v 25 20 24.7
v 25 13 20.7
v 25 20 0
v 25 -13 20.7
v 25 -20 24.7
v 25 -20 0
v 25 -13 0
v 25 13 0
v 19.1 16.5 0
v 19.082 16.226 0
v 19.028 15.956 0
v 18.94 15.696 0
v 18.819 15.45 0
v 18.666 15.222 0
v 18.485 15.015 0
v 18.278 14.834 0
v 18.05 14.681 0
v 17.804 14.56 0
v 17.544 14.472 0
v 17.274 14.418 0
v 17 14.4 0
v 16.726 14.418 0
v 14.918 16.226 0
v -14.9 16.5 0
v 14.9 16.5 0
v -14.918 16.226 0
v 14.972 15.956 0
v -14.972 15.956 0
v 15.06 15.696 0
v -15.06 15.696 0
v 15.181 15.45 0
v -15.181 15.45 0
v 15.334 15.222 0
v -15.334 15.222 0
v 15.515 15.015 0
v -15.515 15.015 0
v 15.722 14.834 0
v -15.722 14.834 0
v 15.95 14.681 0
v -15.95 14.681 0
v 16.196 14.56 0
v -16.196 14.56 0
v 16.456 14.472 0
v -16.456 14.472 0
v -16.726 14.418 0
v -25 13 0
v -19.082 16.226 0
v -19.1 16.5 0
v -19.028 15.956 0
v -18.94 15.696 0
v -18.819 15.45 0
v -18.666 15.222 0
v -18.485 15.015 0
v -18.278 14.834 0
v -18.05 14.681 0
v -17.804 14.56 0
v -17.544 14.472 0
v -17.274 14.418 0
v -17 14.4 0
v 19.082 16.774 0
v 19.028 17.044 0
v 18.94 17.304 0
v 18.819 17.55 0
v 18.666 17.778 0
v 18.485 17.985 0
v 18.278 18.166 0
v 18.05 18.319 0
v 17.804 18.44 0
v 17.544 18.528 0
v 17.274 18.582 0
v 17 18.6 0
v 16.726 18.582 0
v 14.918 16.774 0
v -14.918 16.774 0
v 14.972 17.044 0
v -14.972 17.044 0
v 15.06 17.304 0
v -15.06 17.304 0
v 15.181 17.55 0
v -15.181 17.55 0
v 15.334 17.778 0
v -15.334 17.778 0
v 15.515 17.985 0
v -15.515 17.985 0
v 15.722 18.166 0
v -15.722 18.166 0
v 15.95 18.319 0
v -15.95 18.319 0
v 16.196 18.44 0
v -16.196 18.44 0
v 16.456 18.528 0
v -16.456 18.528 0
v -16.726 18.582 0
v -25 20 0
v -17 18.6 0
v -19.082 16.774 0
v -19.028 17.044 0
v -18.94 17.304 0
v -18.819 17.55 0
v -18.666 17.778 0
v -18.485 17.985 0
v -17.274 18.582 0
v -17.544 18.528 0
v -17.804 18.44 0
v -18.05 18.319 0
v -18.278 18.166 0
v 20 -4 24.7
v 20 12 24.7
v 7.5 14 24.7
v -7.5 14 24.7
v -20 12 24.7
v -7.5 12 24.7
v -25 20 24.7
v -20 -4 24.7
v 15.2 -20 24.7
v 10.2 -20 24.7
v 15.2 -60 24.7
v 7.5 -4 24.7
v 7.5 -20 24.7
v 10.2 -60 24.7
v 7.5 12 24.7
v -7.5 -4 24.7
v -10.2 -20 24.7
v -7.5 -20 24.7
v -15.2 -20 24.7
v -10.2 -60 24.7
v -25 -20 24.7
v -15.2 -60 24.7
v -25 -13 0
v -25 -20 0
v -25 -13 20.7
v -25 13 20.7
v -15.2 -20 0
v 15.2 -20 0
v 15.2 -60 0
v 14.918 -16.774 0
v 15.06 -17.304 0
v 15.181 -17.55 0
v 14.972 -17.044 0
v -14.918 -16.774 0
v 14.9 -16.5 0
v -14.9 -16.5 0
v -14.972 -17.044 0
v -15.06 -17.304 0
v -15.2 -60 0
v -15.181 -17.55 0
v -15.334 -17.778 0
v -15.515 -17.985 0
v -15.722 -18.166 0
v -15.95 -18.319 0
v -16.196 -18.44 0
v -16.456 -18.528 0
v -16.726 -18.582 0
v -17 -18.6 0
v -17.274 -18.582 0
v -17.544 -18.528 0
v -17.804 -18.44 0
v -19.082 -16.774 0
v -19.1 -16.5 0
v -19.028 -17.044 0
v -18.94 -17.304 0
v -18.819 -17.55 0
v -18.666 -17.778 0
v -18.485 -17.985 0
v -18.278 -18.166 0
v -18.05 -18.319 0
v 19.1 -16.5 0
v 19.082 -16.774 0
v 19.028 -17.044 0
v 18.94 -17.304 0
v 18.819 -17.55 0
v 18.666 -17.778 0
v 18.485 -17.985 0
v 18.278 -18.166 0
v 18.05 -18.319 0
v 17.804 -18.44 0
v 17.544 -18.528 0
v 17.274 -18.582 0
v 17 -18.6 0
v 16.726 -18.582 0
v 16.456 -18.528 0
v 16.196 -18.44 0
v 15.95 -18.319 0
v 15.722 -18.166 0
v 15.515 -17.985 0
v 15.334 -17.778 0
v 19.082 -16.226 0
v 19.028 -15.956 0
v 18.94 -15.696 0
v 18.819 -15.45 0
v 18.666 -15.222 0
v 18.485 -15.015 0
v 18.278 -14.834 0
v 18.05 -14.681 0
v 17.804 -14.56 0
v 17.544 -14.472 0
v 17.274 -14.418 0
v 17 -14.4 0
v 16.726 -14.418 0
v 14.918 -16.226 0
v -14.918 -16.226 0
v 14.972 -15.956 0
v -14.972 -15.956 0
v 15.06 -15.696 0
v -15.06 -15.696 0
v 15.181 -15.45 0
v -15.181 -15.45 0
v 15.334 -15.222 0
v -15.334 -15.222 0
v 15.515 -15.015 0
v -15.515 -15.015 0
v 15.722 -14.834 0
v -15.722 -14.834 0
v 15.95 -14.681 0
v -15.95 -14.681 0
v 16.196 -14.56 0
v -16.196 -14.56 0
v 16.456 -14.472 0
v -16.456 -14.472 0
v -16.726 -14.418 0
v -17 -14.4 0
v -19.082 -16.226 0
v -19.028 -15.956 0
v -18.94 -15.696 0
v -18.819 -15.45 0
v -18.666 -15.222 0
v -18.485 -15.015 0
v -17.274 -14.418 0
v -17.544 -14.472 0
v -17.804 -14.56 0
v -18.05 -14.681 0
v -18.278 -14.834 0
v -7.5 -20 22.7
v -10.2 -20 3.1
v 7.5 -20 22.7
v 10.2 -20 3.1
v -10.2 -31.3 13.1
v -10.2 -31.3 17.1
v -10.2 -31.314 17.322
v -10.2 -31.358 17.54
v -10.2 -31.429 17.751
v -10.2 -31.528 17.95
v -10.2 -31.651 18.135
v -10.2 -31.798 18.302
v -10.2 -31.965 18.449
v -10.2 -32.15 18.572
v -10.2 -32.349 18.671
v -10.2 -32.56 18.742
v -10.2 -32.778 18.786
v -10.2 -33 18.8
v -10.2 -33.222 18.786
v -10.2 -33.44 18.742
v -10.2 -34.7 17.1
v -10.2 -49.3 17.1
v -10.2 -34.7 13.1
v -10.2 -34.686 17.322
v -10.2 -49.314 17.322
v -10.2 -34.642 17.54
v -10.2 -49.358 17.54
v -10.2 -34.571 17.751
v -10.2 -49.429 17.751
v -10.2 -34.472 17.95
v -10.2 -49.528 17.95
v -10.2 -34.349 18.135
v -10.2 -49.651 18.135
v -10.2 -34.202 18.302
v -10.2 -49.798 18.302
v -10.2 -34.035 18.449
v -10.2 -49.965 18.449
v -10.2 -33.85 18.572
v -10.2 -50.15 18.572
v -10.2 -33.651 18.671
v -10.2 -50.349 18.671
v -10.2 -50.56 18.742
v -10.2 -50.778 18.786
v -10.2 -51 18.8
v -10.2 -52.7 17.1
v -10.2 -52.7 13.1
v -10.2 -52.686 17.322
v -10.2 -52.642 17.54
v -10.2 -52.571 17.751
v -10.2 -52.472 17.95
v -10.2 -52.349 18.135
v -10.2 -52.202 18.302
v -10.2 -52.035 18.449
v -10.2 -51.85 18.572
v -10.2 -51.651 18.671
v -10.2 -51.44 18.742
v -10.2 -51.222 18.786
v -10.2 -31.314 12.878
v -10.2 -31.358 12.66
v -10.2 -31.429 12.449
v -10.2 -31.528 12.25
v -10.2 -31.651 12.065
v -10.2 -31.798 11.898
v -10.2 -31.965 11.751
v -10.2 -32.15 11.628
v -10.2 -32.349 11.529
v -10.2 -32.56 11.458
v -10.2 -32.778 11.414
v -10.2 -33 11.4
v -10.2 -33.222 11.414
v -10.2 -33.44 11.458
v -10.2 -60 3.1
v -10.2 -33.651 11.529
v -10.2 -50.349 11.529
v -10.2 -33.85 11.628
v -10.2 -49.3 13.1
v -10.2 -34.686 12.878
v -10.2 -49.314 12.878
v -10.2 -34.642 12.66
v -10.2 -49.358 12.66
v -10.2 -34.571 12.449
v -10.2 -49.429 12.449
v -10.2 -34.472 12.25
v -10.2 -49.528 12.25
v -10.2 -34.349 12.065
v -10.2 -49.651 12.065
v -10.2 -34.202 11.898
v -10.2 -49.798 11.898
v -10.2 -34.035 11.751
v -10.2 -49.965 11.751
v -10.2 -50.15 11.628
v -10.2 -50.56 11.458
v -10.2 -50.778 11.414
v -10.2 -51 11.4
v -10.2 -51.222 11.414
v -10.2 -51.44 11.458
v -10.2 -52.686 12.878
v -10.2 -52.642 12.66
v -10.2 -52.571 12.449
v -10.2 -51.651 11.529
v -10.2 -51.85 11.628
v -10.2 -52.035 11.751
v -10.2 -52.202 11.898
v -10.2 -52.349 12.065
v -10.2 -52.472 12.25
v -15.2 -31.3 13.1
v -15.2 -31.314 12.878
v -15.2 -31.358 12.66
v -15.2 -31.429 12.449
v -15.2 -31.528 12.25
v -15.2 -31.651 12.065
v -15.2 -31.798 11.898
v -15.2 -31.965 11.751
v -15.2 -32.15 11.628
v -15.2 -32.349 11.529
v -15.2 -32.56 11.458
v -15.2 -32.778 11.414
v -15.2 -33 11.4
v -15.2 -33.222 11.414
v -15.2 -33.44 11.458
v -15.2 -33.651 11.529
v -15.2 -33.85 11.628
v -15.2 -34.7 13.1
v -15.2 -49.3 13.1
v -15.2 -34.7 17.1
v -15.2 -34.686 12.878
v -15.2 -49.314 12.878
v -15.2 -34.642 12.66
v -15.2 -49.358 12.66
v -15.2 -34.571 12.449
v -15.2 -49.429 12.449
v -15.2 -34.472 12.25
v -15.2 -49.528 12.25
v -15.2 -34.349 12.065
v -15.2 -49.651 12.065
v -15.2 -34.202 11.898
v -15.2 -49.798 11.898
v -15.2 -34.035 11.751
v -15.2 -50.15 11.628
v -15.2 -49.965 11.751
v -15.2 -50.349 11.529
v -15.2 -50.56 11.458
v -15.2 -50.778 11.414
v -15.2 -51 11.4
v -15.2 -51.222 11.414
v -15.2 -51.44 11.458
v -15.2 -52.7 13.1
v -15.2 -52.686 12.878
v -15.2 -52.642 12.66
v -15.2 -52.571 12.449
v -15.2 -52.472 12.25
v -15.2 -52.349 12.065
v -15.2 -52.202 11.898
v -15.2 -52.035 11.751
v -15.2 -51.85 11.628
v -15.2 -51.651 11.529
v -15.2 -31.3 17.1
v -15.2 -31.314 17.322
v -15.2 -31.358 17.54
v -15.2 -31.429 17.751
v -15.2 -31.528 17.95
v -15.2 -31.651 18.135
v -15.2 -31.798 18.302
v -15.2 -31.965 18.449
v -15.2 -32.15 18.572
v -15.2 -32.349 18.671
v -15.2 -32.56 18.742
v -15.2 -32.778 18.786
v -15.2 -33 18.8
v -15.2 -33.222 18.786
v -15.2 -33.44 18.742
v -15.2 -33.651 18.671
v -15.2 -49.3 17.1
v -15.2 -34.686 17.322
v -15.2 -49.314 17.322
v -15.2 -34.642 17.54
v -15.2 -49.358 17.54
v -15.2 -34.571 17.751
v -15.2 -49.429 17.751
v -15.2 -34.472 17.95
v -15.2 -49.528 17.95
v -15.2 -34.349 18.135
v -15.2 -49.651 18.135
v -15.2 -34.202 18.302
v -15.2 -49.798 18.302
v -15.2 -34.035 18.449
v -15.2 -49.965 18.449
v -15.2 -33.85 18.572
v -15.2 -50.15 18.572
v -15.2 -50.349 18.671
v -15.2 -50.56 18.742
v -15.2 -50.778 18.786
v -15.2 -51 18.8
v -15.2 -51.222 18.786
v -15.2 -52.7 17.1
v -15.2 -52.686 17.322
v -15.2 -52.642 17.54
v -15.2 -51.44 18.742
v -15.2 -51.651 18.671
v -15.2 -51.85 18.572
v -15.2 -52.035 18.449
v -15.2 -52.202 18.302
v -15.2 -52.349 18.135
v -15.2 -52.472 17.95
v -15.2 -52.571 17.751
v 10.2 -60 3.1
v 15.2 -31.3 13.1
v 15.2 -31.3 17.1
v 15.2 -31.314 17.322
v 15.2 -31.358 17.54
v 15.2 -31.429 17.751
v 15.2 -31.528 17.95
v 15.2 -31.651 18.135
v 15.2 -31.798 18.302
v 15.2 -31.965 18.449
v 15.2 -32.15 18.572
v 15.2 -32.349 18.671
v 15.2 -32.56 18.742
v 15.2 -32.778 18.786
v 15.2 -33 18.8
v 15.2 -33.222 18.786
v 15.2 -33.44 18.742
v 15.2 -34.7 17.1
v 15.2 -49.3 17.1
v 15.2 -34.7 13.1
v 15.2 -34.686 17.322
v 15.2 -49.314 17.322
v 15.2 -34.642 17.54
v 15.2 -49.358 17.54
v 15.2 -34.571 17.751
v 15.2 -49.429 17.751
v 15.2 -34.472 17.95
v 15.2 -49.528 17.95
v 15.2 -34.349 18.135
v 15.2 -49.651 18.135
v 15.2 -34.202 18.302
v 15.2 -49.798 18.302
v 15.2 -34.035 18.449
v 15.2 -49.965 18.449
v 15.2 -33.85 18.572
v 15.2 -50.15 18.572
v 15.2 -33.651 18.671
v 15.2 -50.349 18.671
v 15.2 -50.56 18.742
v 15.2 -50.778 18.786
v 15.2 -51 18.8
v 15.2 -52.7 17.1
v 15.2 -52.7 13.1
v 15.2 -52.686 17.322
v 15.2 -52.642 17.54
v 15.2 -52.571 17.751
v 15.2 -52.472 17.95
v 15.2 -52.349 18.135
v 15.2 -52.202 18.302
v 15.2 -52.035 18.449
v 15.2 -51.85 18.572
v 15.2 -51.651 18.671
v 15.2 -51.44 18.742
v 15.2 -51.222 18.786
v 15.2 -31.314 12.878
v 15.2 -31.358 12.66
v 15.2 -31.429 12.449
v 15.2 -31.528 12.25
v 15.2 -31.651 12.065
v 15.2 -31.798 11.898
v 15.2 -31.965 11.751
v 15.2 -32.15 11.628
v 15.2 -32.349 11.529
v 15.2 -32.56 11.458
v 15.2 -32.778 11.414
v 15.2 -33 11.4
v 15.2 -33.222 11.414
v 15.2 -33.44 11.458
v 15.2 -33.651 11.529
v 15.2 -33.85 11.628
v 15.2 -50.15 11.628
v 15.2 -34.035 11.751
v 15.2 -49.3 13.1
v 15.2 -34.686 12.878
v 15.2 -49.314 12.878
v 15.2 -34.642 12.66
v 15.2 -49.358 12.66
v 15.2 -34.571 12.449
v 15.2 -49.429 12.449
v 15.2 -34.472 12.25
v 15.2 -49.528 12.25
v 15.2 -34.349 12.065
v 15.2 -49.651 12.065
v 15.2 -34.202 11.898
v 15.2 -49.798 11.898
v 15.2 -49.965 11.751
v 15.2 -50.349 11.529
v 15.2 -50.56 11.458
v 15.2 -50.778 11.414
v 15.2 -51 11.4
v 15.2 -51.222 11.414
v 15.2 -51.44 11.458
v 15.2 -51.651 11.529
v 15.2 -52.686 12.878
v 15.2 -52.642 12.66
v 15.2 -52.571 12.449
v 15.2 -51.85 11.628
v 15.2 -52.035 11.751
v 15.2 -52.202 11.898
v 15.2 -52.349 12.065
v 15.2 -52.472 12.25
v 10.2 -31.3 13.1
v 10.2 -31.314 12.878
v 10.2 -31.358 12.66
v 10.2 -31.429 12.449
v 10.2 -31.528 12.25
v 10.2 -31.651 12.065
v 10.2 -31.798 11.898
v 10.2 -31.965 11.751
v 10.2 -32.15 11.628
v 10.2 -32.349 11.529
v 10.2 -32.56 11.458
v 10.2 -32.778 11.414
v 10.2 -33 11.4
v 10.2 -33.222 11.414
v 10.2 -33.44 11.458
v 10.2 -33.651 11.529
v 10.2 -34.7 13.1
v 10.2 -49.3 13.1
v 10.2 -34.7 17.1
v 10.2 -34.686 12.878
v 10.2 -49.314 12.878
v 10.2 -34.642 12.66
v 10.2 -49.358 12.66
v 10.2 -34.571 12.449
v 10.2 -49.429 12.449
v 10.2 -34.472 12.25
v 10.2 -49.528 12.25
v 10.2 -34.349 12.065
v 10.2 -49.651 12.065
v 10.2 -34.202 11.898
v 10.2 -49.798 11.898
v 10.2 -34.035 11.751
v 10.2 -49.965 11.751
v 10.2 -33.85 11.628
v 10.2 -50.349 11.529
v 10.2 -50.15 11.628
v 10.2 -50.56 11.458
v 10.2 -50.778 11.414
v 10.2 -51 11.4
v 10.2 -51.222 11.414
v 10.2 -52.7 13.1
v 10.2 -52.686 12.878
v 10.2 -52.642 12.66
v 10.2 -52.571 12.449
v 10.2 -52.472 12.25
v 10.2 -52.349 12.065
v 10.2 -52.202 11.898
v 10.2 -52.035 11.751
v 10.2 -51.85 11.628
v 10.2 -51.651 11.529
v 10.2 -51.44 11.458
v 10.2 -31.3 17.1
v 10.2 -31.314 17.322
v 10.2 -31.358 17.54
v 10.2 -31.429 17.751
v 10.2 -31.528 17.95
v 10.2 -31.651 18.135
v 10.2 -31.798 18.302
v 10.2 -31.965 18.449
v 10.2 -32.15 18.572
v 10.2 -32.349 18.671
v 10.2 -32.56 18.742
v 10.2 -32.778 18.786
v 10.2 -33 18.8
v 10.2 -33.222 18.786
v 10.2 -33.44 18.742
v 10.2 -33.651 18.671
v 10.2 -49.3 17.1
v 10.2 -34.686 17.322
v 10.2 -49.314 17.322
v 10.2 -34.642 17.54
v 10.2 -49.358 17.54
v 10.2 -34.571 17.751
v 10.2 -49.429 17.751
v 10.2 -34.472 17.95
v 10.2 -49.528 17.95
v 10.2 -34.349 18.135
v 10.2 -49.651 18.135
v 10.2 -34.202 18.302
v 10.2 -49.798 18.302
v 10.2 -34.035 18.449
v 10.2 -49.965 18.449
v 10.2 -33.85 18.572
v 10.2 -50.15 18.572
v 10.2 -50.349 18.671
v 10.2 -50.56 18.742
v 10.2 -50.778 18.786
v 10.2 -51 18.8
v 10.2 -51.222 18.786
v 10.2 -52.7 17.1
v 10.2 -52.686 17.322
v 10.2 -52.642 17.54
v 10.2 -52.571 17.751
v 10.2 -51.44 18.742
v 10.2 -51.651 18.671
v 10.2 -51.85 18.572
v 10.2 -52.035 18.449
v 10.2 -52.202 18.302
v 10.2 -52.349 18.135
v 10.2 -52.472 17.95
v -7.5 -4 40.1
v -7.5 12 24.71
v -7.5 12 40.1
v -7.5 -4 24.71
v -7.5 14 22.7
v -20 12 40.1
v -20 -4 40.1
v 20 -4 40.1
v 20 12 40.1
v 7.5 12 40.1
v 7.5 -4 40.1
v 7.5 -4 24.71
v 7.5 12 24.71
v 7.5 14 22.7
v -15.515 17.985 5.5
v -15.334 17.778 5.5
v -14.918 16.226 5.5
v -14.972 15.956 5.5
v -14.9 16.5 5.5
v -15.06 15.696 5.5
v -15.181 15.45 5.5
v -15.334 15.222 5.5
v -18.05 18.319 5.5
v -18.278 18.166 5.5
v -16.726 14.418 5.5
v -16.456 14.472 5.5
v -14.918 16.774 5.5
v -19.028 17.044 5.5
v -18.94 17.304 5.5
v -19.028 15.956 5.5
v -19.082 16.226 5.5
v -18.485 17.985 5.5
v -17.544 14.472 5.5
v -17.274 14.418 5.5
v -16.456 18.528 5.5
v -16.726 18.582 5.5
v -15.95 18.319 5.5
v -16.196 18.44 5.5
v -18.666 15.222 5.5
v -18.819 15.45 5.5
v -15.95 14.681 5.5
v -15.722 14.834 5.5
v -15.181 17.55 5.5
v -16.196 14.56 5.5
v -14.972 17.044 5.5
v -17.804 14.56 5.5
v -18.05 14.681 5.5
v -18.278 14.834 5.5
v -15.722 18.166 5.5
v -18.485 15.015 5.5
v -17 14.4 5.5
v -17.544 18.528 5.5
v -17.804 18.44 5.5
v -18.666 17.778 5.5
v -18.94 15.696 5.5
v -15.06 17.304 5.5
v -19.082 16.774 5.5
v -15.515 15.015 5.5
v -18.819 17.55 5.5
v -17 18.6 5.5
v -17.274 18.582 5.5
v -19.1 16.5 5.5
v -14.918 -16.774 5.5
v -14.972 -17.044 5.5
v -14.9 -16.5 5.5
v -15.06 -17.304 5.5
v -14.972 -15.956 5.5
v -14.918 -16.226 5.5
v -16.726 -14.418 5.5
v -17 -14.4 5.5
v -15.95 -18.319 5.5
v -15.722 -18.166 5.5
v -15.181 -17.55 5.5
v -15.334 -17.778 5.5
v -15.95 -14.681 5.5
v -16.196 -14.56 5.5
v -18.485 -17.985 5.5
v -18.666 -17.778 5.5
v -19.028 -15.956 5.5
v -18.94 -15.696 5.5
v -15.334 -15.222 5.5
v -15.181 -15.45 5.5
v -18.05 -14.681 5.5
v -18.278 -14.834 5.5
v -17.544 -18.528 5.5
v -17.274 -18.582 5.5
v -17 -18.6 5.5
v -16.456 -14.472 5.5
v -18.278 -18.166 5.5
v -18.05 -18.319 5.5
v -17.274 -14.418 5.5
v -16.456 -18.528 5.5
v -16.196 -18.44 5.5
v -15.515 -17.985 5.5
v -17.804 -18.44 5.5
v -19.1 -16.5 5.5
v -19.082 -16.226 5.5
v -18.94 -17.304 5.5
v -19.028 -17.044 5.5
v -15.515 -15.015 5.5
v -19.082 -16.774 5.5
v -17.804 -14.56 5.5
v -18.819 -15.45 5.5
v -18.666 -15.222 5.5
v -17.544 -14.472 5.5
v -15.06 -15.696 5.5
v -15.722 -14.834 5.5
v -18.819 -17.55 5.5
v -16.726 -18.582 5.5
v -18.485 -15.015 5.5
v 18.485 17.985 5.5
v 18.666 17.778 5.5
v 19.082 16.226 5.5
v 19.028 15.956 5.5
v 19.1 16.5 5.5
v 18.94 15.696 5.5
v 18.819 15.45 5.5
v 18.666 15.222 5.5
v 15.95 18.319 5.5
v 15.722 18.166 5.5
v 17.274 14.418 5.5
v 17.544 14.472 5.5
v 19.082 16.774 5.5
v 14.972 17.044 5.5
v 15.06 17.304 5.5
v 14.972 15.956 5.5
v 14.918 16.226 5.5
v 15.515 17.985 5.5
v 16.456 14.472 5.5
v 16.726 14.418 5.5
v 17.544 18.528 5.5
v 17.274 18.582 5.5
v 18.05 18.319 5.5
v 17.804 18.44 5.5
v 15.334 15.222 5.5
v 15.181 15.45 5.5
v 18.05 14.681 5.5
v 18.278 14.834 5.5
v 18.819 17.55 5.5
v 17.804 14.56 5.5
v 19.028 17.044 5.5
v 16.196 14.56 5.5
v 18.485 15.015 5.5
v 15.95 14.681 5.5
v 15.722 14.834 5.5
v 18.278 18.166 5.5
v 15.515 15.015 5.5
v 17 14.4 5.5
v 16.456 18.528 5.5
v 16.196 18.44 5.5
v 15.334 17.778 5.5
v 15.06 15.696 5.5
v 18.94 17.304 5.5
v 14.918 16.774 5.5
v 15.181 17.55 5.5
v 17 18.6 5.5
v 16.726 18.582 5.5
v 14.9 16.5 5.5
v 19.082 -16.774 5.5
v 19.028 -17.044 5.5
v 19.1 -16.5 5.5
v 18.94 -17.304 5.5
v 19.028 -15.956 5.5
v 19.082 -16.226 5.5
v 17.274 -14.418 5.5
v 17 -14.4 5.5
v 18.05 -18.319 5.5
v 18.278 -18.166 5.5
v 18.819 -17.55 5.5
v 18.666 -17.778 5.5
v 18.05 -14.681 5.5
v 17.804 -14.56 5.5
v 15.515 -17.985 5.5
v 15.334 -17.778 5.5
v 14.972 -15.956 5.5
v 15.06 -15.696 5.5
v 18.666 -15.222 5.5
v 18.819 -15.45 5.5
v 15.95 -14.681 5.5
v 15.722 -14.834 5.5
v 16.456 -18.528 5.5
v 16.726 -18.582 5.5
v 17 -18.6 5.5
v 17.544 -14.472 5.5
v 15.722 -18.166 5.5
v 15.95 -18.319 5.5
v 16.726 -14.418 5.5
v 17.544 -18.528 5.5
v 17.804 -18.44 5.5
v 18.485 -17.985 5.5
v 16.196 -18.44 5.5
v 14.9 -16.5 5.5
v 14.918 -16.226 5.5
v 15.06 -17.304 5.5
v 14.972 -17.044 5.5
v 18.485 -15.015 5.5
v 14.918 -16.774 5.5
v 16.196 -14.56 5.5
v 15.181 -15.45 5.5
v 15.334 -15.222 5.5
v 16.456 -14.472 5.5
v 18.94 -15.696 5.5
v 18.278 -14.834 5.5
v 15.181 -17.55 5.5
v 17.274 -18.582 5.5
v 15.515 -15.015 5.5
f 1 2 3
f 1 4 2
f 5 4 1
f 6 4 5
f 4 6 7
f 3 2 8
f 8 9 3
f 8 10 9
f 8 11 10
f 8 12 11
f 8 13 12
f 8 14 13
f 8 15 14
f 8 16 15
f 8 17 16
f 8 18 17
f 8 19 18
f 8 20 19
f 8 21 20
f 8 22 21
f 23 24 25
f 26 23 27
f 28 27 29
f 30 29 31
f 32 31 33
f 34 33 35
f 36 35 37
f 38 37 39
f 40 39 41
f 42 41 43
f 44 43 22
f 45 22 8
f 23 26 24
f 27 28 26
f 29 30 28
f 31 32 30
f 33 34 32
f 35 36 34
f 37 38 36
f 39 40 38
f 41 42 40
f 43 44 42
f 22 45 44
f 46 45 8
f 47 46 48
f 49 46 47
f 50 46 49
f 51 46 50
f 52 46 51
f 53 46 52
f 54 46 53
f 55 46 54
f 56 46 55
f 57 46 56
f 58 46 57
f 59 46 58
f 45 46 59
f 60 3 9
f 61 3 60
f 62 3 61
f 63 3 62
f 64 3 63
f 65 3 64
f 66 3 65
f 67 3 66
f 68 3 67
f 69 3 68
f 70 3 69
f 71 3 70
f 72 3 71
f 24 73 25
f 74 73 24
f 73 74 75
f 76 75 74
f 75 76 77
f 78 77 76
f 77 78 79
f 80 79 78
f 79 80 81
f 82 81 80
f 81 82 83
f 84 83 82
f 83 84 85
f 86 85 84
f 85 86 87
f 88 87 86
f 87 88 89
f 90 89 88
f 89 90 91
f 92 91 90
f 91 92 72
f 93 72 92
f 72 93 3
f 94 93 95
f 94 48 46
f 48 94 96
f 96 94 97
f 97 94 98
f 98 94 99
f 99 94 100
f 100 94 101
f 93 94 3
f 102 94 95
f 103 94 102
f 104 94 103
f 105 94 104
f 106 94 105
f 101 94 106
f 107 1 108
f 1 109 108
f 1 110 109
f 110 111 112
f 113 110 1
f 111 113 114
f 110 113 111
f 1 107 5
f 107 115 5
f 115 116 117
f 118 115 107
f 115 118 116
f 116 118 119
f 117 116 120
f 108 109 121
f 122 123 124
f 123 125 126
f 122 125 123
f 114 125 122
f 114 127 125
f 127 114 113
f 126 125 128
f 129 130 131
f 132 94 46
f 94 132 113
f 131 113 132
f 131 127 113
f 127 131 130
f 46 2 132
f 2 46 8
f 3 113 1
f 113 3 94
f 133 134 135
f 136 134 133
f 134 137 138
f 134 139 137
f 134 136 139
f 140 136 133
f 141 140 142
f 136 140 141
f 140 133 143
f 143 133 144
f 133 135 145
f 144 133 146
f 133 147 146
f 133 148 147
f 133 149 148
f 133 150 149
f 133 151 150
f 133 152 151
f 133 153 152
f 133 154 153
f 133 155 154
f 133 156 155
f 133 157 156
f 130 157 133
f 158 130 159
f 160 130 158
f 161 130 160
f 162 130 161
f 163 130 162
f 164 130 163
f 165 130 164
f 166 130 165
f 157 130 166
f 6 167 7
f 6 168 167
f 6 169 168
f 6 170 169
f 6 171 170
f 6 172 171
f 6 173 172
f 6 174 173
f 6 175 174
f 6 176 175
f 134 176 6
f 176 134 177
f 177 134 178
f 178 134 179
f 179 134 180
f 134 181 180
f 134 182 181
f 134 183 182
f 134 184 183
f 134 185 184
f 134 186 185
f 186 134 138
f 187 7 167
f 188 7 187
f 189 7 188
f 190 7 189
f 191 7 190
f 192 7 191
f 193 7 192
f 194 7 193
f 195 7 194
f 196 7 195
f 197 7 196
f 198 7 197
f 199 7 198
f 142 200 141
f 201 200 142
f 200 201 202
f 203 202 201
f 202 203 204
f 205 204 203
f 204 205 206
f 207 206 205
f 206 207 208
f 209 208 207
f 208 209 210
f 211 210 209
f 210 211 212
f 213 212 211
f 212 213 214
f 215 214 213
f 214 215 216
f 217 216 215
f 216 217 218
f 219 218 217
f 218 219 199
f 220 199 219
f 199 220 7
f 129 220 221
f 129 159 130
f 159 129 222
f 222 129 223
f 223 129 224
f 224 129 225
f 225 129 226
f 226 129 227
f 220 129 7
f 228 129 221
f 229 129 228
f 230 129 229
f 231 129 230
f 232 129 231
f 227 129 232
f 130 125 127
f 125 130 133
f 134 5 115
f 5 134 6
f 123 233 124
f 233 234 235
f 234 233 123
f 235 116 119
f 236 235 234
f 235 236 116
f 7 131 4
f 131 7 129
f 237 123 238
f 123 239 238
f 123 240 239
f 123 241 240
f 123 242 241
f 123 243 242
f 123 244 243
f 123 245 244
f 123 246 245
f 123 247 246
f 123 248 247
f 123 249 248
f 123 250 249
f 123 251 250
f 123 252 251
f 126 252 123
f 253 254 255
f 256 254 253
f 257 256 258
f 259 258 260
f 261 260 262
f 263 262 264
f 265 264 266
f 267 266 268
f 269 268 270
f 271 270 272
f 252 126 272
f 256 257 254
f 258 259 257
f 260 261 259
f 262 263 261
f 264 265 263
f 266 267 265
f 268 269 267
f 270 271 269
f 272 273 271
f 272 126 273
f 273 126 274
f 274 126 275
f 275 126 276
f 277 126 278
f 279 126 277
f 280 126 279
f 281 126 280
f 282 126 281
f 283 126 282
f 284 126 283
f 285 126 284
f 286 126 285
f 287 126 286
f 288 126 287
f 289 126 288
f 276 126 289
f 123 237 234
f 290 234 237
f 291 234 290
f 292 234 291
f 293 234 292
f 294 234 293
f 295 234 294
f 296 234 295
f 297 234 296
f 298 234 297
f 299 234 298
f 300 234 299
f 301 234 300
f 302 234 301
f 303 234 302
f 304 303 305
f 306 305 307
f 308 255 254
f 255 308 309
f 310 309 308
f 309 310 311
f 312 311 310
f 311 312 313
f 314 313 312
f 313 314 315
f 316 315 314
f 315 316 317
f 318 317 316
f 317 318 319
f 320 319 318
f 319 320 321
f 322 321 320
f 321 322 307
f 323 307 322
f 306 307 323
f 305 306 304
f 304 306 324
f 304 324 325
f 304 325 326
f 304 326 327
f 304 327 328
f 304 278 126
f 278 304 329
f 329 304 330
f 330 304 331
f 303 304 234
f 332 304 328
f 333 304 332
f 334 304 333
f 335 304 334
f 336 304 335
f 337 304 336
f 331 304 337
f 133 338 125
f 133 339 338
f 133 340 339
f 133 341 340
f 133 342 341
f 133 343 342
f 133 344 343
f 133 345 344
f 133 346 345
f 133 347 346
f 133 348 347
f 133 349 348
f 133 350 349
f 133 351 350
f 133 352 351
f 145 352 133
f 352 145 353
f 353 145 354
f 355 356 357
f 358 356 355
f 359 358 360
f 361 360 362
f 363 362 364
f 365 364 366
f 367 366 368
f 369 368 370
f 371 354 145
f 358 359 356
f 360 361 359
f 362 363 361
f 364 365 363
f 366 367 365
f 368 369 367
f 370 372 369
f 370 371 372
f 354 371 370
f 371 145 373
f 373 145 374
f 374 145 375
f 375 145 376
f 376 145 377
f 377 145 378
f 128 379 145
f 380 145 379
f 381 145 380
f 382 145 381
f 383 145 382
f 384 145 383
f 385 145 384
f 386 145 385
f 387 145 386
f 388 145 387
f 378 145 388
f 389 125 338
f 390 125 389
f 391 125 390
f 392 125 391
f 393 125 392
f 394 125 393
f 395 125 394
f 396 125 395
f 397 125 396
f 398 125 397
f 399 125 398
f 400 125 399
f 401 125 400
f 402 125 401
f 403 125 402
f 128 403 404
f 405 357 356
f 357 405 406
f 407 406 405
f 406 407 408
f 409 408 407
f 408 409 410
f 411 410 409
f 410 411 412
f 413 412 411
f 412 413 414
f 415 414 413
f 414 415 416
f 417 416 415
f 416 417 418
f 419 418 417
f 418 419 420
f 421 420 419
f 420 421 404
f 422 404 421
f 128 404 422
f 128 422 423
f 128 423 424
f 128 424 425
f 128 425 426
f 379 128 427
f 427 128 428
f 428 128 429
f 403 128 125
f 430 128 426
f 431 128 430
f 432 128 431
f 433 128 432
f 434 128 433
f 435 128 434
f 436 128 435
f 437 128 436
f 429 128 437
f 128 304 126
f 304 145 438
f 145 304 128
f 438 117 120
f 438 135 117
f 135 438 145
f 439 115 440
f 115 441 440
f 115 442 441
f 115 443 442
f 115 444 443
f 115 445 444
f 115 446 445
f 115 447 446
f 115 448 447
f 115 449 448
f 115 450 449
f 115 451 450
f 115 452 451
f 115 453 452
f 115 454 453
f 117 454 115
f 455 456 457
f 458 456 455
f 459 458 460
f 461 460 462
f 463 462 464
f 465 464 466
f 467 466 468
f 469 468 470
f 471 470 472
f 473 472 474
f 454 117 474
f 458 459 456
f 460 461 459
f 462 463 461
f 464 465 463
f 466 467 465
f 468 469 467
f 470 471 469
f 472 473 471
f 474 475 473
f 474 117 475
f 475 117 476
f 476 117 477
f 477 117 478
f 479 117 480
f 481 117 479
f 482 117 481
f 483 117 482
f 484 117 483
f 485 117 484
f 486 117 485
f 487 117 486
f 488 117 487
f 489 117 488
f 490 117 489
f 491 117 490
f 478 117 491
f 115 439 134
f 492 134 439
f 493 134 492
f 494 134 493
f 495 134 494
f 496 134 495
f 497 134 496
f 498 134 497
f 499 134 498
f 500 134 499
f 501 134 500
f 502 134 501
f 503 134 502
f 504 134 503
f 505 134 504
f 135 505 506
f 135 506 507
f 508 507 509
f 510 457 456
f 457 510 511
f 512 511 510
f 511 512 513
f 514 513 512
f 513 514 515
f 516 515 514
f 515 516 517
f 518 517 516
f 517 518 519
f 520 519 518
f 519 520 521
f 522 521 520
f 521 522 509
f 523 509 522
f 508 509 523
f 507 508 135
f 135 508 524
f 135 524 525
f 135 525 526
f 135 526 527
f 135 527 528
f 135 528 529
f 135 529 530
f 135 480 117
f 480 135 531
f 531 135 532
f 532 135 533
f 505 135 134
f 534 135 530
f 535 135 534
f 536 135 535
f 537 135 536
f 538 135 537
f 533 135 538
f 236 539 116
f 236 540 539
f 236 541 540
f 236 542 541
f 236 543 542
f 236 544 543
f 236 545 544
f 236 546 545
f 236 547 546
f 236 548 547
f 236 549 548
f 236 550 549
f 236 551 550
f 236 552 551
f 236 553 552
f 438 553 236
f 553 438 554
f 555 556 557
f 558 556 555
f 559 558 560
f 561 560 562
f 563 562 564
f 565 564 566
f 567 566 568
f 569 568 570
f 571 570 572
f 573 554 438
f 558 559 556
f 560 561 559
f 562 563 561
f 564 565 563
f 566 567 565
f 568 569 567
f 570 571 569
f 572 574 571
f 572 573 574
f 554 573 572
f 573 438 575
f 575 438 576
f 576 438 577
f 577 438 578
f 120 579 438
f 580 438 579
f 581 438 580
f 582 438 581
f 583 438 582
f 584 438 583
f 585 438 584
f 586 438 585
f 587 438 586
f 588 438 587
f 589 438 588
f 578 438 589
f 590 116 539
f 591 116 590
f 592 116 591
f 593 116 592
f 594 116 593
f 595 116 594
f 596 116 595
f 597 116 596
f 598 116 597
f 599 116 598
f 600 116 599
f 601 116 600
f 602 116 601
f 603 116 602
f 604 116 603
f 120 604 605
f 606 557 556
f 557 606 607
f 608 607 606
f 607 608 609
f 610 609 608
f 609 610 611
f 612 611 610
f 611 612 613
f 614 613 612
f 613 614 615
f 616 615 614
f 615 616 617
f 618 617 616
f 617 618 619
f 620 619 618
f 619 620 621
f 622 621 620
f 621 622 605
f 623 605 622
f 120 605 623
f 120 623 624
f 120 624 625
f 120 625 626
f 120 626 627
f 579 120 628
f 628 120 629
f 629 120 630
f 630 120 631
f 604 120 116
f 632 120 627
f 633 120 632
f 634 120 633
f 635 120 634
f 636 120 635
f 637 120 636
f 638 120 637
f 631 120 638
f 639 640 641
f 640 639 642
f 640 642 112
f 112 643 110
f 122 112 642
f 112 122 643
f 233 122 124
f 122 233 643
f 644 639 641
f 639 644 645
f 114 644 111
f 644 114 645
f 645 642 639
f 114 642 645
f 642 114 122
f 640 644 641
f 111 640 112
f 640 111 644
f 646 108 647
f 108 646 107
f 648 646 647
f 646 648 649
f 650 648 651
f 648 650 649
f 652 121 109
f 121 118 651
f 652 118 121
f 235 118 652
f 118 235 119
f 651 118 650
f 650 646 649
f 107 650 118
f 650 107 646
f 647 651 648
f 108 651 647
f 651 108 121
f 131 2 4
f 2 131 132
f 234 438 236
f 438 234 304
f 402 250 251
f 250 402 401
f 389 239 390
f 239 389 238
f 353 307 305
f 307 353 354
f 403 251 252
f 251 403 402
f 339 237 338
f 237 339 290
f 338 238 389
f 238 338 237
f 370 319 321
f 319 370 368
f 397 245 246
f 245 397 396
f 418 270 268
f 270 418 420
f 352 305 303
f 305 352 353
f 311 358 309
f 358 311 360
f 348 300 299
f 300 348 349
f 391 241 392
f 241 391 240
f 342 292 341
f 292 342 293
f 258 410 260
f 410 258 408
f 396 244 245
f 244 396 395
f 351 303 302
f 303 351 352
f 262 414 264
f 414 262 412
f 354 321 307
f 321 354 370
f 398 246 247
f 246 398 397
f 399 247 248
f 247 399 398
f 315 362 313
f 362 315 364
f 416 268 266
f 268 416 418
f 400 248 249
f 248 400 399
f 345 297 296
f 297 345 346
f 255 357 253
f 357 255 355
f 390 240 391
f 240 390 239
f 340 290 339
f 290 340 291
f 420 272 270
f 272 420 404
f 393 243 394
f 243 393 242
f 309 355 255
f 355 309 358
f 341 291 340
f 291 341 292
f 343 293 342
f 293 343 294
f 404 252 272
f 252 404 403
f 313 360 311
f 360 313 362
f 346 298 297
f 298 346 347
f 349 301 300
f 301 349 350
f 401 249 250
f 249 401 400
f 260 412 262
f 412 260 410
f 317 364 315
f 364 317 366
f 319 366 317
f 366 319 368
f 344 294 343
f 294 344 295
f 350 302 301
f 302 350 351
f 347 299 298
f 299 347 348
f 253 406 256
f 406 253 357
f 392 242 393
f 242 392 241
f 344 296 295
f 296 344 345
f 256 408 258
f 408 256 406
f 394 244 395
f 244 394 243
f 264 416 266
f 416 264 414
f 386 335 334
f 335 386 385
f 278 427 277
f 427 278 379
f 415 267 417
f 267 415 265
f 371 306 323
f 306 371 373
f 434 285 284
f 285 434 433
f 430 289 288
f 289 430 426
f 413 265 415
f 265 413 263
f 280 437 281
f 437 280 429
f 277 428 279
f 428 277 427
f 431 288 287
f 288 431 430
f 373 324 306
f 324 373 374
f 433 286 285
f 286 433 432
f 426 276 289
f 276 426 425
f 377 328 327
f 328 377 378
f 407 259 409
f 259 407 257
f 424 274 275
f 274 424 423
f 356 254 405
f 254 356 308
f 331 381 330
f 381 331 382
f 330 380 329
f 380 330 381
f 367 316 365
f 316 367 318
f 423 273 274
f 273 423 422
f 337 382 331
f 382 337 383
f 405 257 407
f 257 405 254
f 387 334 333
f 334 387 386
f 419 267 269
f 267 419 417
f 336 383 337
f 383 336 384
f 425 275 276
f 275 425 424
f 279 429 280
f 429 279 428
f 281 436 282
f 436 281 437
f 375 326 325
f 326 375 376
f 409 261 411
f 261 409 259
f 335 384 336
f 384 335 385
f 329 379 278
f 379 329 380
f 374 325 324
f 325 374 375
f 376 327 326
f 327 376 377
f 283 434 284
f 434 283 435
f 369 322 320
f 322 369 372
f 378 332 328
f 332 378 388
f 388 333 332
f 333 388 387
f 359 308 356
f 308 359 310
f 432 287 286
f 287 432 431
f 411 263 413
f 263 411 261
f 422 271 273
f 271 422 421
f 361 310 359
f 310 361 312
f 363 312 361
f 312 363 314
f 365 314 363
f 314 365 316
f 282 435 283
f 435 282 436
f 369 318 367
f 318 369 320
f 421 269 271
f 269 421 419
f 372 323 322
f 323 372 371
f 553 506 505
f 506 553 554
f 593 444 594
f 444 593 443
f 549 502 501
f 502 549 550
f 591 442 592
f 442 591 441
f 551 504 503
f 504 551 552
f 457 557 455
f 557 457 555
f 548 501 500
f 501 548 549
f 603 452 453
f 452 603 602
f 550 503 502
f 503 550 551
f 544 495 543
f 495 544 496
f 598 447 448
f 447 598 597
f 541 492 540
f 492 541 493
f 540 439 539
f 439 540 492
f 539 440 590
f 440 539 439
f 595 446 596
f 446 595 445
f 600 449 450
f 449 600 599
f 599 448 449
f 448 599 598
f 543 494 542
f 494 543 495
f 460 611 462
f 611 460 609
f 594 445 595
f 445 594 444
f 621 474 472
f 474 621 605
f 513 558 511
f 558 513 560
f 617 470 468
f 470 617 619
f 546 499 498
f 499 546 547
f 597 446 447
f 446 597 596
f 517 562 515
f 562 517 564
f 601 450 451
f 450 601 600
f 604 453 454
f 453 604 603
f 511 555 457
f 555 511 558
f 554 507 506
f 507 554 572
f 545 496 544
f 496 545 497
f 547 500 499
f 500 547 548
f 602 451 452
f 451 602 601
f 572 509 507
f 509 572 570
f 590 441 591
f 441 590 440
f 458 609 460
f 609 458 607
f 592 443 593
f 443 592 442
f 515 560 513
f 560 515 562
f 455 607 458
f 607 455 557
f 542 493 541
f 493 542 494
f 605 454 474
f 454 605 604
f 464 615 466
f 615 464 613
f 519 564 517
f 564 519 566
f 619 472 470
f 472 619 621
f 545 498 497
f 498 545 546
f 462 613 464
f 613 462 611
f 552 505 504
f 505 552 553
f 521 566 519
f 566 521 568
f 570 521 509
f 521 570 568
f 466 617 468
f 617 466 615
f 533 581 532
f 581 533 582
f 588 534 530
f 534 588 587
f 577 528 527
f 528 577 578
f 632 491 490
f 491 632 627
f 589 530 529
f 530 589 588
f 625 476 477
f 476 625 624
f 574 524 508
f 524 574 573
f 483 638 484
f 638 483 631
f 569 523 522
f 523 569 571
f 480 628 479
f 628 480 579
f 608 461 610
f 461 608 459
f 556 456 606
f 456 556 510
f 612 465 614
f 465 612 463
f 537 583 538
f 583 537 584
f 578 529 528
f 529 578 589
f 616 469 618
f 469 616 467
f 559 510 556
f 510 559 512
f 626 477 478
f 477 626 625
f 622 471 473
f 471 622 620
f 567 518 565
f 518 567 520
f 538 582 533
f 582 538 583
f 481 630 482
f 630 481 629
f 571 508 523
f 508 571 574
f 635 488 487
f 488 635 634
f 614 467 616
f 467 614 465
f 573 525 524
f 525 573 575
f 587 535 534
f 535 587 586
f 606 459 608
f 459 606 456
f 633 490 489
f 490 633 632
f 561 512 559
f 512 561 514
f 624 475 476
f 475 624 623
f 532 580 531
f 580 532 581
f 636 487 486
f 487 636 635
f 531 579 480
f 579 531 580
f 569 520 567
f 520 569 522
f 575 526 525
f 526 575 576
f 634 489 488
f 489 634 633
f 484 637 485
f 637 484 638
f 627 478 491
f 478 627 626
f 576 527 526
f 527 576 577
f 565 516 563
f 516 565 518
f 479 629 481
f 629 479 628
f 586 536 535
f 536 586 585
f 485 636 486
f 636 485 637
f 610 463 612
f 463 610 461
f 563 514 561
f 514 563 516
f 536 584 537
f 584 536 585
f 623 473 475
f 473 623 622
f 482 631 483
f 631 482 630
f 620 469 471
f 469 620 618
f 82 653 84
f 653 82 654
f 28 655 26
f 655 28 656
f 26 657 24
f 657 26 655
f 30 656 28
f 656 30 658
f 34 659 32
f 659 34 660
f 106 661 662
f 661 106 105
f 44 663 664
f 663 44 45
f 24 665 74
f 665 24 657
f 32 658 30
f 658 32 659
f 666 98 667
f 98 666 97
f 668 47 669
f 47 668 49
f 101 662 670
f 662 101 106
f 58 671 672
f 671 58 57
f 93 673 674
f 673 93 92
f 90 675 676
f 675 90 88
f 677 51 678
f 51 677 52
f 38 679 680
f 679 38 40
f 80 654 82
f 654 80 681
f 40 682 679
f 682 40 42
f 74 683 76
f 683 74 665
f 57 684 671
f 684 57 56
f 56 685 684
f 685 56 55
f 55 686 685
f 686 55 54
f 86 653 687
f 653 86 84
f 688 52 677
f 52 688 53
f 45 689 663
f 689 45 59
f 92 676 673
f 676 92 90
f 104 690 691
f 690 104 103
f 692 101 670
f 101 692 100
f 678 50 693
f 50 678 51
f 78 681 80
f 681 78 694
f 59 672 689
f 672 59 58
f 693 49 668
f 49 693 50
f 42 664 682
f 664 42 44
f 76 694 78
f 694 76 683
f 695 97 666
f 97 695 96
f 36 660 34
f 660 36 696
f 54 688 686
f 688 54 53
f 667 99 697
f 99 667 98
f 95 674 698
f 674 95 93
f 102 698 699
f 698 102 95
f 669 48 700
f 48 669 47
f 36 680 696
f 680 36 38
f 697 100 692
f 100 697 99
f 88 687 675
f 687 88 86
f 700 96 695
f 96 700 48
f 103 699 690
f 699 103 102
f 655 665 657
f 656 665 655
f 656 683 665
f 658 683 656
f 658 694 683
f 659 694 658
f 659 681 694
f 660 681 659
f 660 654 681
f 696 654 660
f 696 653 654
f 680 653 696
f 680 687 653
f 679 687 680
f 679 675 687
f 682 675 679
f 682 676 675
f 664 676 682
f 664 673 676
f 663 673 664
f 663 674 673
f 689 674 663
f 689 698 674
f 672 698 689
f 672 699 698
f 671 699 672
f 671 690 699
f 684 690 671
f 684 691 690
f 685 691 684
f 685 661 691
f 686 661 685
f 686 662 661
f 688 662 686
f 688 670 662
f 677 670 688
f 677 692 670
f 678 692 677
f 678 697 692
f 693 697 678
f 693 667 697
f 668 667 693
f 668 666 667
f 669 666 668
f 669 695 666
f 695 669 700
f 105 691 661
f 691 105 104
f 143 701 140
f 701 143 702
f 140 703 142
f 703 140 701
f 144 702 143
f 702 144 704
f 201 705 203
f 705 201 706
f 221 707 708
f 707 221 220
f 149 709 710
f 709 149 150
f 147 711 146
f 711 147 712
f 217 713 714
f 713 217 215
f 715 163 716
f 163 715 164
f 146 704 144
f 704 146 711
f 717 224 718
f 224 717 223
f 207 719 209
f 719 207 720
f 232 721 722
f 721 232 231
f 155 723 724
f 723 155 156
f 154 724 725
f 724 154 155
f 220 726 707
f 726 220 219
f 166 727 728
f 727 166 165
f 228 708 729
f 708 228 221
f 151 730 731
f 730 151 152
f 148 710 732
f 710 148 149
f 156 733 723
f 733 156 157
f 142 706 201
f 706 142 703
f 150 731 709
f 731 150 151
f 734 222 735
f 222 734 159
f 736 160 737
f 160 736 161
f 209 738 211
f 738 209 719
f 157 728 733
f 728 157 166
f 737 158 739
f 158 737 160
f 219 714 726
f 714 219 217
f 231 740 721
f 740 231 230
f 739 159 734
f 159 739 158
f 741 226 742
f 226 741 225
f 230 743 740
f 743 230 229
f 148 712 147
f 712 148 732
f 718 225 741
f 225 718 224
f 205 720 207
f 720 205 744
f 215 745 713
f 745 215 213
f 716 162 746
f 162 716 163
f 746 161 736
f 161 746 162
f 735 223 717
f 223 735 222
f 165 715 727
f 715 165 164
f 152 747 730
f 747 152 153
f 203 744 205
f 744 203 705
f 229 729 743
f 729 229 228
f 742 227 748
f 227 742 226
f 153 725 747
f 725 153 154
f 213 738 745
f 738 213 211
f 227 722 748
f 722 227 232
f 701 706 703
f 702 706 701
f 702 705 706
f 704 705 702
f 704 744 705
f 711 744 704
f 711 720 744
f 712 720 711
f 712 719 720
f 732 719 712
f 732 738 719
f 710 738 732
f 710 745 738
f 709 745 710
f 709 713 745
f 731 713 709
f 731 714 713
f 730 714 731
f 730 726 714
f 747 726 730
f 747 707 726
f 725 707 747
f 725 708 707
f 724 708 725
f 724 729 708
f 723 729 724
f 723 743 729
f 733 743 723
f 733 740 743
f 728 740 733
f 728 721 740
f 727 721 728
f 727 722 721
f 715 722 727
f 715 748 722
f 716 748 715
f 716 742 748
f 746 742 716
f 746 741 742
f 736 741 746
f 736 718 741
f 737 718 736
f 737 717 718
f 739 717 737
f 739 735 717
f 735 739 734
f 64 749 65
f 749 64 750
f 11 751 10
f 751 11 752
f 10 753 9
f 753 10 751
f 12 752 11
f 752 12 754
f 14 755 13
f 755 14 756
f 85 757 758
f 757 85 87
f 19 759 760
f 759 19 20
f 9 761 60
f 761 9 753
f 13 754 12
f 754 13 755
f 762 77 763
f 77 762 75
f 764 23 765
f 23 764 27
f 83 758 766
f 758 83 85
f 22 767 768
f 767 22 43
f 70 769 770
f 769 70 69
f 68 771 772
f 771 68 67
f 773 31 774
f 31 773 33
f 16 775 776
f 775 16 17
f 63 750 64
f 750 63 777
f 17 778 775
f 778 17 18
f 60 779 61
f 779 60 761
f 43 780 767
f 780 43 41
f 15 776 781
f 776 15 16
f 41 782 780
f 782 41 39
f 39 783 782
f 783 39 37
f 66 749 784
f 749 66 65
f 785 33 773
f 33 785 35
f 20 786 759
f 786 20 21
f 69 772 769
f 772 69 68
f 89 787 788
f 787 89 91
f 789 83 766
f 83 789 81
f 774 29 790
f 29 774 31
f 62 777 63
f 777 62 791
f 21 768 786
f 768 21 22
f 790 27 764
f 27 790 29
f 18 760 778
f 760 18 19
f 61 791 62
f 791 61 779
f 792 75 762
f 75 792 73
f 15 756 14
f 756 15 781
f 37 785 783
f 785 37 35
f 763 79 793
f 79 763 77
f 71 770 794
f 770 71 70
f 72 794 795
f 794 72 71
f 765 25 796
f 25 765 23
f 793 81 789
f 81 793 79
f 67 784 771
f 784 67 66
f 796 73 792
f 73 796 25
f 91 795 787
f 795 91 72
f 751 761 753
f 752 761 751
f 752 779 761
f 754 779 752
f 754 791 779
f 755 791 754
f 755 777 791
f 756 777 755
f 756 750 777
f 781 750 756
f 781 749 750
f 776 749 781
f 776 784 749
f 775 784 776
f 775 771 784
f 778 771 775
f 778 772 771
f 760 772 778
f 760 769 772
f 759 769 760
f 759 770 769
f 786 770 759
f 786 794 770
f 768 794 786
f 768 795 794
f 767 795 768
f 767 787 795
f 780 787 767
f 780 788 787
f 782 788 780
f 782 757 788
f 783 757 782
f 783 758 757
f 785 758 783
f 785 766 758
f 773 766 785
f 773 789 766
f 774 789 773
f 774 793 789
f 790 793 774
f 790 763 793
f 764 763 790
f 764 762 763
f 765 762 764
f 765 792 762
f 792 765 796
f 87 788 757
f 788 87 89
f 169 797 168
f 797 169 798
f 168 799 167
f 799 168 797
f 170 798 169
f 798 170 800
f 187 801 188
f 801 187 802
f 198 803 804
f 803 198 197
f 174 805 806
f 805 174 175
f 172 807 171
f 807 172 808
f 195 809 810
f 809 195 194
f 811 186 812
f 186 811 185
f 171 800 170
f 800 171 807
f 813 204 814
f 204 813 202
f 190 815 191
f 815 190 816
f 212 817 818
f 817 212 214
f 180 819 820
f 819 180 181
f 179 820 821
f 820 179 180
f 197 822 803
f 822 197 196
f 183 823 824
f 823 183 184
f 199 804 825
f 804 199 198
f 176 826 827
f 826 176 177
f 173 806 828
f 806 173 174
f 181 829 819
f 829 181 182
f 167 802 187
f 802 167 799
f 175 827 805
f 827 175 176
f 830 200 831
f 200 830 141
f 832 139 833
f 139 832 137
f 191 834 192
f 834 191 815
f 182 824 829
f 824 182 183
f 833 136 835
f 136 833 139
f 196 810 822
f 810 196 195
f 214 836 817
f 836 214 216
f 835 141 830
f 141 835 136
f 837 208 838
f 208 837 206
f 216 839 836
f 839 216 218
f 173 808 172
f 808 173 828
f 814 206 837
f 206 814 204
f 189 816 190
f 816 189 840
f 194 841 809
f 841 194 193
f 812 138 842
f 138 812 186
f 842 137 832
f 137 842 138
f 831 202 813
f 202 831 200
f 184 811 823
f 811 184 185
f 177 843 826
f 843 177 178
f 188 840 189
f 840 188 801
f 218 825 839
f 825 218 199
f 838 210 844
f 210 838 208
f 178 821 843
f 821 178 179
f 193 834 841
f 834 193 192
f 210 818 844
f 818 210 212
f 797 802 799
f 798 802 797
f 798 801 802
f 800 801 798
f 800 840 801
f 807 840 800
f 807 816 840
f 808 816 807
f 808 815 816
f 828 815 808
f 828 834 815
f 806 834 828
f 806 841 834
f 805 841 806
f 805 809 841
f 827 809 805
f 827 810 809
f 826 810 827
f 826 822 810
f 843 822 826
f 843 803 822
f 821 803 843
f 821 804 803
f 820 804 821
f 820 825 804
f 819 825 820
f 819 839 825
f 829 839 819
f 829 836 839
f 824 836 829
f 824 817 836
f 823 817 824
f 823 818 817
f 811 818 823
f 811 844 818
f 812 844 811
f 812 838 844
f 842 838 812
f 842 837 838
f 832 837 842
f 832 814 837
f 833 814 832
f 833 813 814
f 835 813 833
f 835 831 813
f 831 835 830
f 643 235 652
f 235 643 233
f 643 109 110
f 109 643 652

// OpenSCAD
// Back slider v3 for the bench scope gantry (body here; its cap is chain_cap.scad)
// Changes from v2:
//  - front/back play on the back rail is 3 mm each side (was 1): the front rail and the rigid
//    carriage bracket keep the boom square, this part only carries the boom's back end
//  - it HANGS on the rail by the cap's two UHMW strips. The floor is only an anti-lift guard,
//    0.6 mm clear of the rail, no tape needed
//  - saddle screw holes are vertical slots and the saddle's top is 2 mm clear of the boom, so the
//    boom's back end finds its own height before the four screws are tightened
//  - two bumpers under the floor stop the Y carriage at the rear end of its rail
//  - prints UPSIDE DOWN (wall tops and saddle top on the bed), no supports; the floor is a bridge
// Hardware: 4x M3x10 + T-nuts (saddle to boom sides), 4 heat-set inserts for the cap's M3x10.
//
// Frame: X along the back rail, Y toward you (along the boom), Z up. Origin = back rail center.

/* [Rail fit] */
rail        = 20;
side_float  = 3.0;    // play front/back, each side
pad_proud   = 0.10;   // cap tape stands this far below the cap
lift_gap    = 0.6;    // rail underside to floor

/* [Body] */
len         = 50;
floor_t     = 4.0;
wall_t      = 7;

/* [Boom saddle] */
boom        = 20;
boom_drop   = 5;      // nominal: boom center below back rail center
boom_fit    = 0.4;
cheek_t     = 5;
saddle_len  = 40;
boom_gap    = 1;
screw_y     = [12, 30];
v_adj       = 2;      // boom height adjustment, +/-
rail_relief = 2;      // groove under the floor so the Y rail's overhang can rise with the boom
yrail_w     = 12;

/* [Y carriage stop] */
stop_y      = 4;      // stop face, forward of the back rail center. The carriage's rear face lands here
stop_len    = 16;
stop_x      = [7.5, 20];   // each side of the Y rail; the MGN12H block is 13.5 either side of center
stop_bot    = -30;    // carriage block spans about -18 .. -28

/* [Hardware] */
m3_clear    = 3.4;
insert_d    = 4.2;
insert_len  = 5.5;
cap_screw_x = 17;

$fn = 48; eps = 0.01;

z_top    = rail/2 + pad_proud;      // wall top = cap underside
z_floor  = -rail/2 - lift_gap;
z_bot    = z_floor - floor_t;
wall_y0  = rail/2 + side_float;
wall_y1  = wall_y0 + wall_t;
wall_yc  = wall_y0 + wall_t/2;
boom_zc  = -boom_drop;
boom_top = boom_zc + boom/2;
cheek_x0 = boom/2 + boom_fit/2;

module body() {
  difference() {
    union() {
      translate([-len/2, -wall_y1, z_bot]) cube([len, 2*wall_y1, floor_t]);
      for (s = [-1, 1]) translate([-len/2, s > 0 ? wall_y0 : -wall_y1, z_bot]) cube([len, wall_t, z_top - z_bot]);
      for (s = [-1, 1]) translate([s > 0 ? cheek_x0 : -cheek_x0 - cheek_t, wall_y1 - eps, z_bot])
        cube([cheek_t, saddle_len + eps, z_top - z_bot]);
      translate([-cheek_x0 - cheek_t, wall_y1 - eps, boom_top + v_adj]) cube([2*(cheek_x0 + cheek_t), saddle_len + eps, z_top - boom_top - v_adj]);
      // Y carriage bumpers
      for (s = [-1, 1]) translate([s > 0 ? stop_x[0] : -stop_x[1], stop_y - stop_len, stop_bot]) cube([stop_x[1] - stop_x[0], stop_len, z_bot - stop_bot + eps]);
    }
    // groove for the Y rail's overhang
    translate([-yrail_w/2 - 1.5, stop_y - stop_len - 2, z_bot - eps]) cube([yrail_w + 3, wall_y1 - stop_y + stop_len + 3, rail_relief + eps]);
    // saddle screws: vertical slots
    for (s = [-1, 1], y = screw_y) hull() for (dz = [-v_adj, v_adj])
      translate([s*(cheek_x0 - eps), wall_y1 + boom_gap + y, boom_zc + dz]) rotate([0, s*90, 0]) cylinder(d = m3_clear, h = cheek_t + 2*eps);
    for (sx = [-1, 1], sy = [-1, 1]) translate([sx*cap_screw_x, sy*wall_yc, z_top - insert_len]) cylinder(d = insert_d, h = insert_len + eps);
  }
}

mode = "print";   // "print" | "assembly"
if (mode == "assembly") {
  color("royalblue") body();
  color("silver", 0.6) translate([-70, -rail/2, -rail/2]) cube([140, rail, rail]);
  color("lightgray") translate([-boom/2, wall_y1 + boom_gap, boom_zc - boom/2]) cube([boom, 110, boom]);
  color("dimgray") translate([-6, 0, boom_zc - boom/2 - 8]) cube([12, 130, 8]);
  color("orange") translate([-13.5, stop_y, boom_zc - boom/2 - 13]) cube([27, 45.4, 10]);   // Y carriage at the stop
} else translate([0, 0, z_top]) rotate([180, 0, 0]) body();
